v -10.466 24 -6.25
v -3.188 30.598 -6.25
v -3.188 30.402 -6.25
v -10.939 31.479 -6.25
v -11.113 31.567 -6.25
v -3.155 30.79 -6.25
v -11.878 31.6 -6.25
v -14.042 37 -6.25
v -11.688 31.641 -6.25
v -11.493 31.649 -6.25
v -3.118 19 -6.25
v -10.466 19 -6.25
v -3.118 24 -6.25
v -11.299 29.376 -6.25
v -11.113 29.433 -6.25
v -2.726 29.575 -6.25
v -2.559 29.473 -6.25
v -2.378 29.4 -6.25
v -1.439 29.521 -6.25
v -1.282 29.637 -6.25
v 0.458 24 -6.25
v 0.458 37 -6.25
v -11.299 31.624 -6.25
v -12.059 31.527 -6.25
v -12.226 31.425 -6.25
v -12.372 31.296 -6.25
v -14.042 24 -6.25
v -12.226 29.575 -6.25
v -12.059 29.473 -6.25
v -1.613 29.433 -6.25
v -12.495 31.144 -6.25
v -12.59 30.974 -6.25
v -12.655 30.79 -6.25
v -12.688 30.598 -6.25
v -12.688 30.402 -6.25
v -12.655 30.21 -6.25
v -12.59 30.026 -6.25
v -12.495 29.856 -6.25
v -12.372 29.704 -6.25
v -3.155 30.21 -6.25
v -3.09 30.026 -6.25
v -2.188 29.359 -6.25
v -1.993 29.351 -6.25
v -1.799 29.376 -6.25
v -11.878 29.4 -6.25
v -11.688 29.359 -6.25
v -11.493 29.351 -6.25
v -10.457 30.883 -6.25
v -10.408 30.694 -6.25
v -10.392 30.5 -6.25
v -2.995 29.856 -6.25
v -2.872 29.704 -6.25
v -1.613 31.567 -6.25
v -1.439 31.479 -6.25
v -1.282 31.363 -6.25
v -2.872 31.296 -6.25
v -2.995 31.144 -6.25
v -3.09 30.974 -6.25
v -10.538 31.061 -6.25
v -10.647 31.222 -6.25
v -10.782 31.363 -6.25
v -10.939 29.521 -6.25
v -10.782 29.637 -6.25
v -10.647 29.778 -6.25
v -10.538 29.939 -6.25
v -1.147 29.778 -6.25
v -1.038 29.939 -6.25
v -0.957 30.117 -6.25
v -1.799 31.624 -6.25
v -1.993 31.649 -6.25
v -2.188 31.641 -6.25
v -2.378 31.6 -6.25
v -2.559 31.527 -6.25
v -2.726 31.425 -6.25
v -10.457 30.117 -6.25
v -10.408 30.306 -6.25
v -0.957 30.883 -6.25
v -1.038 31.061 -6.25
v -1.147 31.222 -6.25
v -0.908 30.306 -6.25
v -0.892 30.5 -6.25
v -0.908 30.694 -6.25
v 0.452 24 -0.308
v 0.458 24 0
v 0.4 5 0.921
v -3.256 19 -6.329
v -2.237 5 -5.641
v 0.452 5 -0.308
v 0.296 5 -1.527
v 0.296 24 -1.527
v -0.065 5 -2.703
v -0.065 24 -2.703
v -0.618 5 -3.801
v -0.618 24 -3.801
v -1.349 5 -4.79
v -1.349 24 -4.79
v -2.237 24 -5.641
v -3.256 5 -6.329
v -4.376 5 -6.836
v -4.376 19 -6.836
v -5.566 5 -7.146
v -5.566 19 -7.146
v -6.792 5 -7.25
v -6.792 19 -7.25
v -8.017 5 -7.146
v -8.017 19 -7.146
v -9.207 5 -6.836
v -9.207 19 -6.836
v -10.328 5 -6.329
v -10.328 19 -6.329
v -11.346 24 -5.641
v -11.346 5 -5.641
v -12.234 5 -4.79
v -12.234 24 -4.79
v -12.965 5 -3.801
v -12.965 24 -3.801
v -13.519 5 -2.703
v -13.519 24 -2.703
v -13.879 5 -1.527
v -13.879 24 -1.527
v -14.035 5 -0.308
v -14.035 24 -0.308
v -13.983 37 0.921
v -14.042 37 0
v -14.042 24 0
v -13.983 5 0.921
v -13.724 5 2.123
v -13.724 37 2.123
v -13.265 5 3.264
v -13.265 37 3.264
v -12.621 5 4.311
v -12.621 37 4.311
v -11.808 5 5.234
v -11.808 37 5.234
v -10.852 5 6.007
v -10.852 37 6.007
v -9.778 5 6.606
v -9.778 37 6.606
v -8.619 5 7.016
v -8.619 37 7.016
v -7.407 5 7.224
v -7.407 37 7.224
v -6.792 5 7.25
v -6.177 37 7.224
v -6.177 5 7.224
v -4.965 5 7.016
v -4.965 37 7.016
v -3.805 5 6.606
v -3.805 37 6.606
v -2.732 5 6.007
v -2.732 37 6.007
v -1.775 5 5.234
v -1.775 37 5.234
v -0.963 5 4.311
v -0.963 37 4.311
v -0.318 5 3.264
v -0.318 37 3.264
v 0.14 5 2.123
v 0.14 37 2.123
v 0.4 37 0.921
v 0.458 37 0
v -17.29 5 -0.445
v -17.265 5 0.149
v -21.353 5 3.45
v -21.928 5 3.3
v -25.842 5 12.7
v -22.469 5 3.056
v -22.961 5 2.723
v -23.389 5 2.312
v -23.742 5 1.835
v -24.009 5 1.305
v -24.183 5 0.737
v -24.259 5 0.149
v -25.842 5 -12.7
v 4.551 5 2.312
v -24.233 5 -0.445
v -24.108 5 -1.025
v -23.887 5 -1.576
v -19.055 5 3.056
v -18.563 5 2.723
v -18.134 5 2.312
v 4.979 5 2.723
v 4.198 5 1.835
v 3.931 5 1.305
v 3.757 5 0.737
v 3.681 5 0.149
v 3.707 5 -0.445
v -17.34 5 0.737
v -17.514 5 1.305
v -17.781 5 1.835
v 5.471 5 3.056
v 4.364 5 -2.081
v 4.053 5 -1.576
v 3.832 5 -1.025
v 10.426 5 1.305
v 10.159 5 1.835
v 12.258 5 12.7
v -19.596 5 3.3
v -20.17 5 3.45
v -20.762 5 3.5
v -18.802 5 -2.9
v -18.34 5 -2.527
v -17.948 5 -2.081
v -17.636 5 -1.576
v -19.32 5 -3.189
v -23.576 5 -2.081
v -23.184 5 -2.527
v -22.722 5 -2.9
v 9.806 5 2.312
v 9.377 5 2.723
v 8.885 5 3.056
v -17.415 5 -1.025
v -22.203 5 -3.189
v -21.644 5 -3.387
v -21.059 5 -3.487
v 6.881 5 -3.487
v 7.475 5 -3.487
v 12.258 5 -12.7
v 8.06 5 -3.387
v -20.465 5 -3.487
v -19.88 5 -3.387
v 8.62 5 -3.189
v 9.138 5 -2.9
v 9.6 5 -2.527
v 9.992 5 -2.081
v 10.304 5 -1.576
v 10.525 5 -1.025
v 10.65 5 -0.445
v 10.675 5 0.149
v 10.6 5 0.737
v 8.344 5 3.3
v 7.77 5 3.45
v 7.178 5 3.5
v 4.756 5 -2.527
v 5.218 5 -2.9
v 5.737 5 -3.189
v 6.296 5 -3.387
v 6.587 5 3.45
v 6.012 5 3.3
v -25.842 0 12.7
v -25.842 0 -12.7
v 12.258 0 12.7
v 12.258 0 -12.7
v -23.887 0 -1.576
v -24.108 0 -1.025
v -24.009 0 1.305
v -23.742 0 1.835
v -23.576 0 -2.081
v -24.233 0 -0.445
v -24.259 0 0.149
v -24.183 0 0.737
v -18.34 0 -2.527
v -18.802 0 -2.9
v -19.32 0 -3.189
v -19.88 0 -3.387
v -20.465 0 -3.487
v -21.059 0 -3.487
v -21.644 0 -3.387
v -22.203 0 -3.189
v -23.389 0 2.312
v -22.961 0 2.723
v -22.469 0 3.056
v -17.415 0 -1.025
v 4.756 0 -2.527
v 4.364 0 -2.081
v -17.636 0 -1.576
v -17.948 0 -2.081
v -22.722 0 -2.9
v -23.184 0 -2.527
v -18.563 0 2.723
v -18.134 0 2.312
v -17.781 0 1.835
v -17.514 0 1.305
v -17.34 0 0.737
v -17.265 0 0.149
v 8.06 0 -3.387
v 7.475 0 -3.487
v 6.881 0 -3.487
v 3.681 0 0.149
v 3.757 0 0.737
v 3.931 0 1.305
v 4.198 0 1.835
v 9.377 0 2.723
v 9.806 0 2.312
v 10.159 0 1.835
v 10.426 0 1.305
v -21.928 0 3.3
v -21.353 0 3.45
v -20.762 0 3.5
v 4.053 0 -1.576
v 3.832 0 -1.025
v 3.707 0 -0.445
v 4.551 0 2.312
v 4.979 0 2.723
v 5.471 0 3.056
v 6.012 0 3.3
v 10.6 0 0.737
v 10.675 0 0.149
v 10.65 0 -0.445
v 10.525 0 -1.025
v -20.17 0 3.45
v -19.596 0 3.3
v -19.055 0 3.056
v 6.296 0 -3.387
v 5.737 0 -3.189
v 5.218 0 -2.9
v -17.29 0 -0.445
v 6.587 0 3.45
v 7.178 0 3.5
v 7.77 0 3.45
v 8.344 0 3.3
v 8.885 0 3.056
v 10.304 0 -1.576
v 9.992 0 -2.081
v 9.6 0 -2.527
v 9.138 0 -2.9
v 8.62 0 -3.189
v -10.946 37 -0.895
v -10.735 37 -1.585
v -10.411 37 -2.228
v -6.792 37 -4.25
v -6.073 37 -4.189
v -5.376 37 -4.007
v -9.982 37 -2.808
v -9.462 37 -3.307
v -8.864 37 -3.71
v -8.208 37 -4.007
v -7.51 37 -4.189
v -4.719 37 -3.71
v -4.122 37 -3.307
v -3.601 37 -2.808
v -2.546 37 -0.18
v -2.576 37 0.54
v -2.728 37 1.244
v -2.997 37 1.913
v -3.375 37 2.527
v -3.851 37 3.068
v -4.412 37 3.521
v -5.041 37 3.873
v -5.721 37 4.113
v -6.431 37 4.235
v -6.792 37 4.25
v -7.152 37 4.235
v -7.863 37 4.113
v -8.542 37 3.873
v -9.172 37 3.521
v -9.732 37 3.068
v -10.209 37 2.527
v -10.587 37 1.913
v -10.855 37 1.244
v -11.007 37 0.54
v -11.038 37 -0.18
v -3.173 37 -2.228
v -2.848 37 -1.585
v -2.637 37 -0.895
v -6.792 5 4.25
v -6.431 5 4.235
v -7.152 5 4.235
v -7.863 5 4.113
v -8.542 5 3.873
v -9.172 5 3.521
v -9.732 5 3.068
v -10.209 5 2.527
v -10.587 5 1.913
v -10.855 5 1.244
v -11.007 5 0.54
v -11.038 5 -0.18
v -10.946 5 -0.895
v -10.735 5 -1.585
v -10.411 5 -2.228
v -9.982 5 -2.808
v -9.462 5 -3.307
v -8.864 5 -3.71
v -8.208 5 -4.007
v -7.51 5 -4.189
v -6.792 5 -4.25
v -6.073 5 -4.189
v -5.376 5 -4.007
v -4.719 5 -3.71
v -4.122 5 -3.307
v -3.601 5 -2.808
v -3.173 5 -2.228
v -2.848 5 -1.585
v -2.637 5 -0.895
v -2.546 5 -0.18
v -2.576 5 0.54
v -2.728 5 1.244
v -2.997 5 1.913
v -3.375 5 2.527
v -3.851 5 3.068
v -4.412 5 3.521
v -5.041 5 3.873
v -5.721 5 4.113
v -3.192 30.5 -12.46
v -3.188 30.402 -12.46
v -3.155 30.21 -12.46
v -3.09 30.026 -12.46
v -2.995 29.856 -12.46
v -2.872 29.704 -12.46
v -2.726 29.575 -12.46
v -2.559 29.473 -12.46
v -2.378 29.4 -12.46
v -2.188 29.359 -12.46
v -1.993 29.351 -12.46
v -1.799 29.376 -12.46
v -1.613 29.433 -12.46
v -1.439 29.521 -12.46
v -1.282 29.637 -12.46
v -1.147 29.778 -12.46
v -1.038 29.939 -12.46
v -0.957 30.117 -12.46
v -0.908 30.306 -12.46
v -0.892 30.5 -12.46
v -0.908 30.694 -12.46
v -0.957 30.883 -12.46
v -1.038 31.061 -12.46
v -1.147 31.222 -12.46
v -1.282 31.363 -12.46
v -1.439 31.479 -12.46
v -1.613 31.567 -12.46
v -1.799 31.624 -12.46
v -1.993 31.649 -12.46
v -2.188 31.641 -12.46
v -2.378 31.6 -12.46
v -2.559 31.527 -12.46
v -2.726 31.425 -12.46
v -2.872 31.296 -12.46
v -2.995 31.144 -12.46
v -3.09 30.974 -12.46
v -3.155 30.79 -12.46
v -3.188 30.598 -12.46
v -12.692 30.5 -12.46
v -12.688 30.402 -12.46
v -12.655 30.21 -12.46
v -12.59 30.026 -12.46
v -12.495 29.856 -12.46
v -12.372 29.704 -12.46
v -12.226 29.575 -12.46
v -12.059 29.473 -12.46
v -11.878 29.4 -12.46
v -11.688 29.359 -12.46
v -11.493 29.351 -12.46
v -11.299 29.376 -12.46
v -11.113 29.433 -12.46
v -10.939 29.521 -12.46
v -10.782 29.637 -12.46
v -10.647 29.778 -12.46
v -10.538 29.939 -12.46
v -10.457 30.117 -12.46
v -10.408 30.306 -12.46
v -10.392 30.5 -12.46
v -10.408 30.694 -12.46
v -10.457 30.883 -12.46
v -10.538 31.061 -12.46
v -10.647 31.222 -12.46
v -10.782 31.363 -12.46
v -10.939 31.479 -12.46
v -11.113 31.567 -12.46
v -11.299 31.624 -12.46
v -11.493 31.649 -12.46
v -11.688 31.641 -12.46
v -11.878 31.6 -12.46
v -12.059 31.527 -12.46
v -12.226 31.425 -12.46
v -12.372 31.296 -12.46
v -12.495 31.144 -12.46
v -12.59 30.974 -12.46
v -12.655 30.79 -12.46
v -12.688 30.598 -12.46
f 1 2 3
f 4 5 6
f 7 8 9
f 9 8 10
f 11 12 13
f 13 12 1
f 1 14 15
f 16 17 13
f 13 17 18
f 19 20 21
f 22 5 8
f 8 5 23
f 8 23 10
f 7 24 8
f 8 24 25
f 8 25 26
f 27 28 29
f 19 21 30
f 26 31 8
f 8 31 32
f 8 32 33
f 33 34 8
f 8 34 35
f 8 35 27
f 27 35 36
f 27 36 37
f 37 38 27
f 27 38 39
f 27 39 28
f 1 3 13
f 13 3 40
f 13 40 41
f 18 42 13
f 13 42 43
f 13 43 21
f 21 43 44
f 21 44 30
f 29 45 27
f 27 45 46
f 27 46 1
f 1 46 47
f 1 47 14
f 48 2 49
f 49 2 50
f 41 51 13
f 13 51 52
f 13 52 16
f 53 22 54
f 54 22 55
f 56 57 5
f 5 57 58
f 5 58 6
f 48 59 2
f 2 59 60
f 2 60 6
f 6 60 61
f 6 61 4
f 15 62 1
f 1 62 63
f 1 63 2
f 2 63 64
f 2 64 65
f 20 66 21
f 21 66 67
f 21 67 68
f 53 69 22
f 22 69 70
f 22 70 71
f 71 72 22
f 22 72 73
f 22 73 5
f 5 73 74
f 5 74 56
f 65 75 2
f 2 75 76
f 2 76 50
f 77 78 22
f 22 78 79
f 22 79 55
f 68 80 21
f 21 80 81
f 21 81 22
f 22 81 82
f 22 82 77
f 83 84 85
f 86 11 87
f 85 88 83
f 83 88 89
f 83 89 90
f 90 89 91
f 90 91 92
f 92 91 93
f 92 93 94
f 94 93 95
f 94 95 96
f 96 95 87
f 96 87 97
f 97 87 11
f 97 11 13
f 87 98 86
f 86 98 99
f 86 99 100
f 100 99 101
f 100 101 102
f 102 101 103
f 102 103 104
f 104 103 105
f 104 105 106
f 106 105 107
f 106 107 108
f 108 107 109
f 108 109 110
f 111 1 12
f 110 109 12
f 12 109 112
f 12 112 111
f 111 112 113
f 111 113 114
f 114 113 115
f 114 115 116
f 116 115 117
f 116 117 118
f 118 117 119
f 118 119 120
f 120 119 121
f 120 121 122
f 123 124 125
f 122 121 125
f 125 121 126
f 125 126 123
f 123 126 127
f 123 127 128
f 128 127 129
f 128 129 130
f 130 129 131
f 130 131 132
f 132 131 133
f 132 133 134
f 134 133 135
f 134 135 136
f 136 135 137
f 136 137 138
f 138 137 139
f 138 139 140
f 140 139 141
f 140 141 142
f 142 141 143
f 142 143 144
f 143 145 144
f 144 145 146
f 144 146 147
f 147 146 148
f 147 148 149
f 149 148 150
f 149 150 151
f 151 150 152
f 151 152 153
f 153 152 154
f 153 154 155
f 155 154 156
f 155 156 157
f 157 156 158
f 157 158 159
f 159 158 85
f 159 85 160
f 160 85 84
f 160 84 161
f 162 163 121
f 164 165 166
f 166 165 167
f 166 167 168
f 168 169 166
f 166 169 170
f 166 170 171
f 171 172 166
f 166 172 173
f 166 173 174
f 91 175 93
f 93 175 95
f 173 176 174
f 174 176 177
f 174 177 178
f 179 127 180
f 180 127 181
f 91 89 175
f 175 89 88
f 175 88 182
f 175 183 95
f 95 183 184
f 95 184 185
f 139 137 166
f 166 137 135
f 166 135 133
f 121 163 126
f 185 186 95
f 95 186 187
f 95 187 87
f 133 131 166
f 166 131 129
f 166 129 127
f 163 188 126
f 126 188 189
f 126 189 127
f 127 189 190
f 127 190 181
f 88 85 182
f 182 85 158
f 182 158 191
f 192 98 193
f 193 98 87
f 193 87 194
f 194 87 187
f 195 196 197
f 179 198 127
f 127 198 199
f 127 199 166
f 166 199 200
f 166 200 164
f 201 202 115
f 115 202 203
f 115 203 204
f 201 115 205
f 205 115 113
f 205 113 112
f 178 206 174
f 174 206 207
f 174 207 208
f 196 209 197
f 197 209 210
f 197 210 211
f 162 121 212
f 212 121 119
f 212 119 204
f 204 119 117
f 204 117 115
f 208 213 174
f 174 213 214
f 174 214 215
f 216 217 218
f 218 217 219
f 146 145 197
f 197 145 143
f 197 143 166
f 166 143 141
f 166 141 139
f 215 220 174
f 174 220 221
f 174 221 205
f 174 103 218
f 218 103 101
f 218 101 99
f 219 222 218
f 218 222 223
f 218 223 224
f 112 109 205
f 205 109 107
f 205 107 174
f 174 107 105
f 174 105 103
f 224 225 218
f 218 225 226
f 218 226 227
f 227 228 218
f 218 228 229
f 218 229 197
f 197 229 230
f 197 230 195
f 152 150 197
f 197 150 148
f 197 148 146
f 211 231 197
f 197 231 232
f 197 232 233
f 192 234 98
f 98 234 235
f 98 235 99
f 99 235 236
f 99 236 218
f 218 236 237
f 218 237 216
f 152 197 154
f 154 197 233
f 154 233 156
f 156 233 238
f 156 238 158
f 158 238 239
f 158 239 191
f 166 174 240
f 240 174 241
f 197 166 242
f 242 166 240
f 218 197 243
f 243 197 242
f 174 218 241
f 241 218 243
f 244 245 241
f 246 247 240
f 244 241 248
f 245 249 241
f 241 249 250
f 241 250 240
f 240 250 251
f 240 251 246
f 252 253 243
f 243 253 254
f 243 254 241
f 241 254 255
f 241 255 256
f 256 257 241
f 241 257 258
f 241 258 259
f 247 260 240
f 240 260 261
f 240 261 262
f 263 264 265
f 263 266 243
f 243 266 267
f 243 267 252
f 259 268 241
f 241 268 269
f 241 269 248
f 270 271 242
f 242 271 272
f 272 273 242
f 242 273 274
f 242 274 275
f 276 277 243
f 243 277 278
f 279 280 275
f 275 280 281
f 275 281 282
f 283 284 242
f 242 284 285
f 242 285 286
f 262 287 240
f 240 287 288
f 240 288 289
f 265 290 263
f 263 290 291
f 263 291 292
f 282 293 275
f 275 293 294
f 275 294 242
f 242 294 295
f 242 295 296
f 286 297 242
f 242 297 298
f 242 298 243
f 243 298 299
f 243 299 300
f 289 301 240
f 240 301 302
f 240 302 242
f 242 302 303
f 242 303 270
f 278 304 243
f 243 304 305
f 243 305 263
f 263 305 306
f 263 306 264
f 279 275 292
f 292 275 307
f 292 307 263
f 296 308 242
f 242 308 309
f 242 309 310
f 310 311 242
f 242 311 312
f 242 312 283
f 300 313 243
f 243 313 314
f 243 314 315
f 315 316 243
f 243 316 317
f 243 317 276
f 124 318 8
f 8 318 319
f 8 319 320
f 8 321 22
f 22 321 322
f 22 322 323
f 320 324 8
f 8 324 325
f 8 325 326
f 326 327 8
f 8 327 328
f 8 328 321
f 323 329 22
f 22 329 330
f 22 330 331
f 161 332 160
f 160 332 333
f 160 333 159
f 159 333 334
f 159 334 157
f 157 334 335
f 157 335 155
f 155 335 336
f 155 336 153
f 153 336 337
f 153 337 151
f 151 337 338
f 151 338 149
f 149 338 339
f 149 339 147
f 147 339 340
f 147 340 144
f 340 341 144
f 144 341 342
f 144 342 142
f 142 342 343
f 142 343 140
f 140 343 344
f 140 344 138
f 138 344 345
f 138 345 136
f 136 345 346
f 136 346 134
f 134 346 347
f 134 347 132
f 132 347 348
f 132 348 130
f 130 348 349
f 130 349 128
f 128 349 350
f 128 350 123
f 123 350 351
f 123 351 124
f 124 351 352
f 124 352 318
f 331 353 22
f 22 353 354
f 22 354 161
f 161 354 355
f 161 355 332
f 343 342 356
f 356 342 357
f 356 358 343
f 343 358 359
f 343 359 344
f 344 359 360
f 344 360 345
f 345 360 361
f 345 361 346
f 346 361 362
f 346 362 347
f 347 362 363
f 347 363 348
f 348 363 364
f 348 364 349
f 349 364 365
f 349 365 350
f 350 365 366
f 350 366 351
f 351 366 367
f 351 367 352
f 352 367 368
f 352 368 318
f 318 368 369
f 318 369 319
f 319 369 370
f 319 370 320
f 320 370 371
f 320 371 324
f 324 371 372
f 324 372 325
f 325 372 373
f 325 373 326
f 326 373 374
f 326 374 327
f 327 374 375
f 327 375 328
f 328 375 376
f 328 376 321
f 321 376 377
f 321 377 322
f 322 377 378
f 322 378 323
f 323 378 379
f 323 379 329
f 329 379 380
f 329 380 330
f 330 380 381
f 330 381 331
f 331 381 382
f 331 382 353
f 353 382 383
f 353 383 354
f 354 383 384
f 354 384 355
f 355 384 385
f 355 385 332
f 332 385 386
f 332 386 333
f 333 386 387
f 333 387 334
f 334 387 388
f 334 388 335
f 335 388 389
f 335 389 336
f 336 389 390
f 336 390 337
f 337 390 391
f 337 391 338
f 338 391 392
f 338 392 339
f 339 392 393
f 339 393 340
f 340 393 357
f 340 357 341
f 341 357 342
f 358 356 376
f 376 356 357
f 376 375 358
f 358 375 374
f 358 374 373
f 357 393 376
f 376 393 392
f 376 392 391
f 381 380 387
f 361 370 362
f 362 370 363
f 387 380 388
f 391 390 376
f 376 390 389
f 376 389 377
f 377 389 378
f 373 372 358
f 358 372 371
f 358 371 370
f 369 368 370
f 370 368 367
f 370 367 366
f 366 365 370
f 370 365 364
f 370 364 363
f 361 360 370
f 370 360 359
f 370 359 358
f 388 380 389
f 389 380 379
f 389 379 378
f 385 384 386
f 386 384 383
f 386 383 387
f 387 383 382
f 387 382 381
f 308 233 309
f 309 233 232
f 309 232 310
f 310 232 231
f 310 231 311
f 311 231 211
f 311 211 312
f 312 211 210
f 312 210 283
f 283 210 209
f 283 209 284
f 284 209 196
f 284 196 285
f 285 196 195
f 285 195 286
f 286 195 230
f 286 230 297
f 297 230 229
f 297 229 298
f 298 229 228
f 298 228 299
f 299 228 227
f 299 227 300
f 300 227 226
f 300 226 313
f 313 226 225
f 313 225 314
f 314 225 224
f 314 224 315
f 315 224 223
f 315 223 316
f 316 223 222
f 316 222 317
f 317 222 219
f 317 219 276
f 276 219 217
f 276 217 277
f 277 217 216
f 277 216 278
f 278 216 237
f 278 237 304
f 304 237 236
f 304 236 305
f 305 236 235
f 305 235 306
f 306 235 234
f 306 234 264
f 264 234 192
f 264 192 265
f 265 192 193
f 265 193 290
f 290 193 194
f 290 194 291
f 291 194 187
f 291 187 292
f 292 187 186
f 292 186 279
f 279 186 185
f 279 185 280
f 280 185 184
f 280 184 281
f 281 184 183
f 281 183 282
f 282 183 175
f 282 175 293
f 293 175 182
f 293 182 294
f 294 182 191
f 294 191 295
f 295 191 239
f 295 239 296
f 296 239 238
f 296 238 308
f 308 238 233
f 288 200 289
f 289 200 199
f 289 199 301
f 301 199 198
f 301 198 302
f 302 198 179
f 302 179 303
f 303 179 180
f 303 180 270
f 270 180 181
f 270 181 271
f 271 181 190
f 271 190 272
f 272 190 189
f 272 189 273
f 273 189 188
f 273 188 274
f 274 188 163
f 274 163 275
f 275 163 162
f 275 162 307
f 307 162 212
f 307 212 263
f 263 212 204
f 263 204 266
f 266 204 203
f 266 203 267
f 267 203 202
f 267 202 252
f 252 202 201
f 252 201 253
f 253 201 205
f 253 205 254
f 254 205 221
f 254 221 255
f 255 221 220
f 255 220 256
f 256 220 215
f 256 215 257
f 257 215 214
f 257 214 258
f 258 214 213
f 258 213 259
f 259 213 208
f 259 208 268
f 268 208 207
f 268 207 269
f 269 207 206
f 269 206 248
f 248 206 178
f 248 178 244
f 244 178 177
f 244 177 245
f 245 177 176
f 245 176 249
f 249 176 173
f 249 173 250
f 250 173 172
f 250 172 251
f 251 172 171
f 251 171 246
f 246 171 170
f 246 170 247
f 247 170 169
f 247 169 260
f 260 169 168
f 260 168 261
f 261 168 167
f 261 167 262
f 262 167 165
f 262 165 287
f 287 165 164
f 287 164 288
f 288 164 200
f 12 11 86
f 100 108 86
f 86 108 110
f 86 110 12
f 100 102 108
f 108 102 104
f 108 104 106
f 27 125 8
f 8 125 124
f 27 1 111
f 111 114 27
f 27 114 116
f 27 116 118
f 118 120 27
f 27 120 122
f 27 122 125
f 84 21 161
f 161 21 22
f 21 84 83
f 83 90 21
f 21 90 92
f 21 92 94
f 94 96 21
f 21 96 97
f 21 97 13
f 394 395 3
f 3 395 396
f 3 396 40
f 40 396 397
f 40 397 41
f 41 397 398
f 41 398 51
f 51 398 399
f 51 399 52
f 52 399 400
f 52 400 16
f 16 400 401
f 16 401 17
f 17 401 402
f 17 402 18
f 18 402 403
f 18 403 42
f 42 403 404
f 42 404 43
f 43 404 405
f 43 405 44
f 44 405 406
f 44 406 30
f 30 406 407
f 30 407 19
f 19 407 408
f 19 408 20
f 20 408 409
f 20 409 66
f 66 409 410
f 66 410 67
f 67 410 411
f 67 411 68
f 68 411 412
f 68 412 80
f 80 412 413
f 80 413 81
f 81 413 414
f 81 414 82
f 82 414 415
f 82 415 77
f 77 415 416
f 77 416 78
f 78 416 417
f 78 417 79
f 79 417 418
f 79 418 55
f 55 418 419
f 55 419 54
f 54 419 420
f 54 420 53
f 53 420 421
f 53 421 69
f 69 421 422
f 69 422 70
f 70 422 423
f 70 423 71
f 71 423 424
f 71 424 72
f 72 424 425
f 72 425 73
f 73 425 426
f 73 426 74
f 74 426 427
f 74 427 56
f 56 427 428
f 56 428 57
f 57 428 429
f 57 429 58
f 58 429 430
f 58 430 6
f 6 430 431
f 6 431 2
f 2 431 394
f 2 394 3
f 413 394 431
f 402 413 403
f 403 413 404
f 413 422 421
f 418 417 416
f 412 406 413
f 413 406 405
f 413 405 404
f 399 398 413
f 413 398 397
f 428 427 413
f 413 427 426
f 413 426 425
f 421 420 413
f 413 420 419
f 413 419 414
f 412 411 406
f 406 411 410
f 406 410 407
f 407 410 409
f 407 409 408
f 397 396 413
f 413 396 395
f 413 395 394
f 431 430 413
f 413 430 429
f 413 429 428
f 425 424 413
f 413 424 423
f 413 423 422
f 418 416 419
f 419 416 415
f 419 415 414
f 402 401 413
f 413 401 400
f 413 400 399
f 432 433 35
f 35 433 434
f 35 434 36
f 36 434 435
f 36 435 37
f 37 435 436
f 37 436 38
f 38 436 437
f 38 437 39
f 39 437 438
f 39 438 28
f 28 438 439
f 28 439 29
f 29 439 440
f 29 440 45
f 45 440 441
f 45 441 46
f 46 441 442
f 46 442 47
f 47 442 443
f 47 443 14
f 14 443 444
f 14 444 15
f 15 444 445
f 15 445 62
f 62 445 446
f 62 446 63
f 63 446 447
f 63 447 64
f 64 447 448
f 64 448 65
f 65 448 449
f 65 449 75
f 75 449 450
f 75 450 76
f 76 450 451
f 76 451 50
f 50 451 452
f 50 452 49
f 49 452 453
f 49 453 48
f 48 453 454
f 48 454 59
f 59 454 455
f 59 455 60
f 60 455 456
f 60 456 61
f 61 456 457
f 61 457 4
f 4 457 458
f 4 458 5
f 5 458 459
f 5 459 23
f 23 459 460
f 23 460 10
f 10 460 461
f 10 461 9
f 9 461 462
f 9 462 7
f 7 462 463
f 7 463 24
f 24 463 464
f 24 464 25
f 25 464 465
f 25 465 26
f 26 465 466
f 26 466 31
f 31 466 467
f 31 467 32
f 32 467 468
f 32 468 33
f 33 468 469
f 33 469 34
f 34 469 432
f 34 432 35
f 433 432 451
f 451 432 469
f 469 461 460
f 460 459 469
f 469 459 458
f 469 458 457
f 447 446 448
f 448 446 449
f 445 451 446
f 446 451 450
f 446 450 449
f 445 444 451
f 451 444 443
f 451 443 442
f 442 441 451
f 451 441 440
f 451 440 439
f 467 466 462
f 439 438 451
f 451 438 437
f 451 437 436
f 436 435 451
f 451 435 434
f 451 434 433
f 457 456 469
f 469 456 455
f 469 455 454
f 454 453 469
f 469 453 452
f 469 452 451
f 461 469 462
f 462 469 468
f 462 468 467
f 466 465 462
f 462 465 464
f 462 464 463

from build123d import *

# Parameters (mm, degrees)
SKETCH1_W           = 38.1
SKETCH1_H           = 25.4
BOSS_EXTRUDE1_DEPTH = 5
SKETCH3_R           = 7.25
SKETCH3_R_2         = 4.25
BOSS_EXTRUDE2_DEPTH = 32
SKETCH4_R           = 3.5
CUT_EXTRUDE1_DEPTH  = 44.047479384
CUT_EXTRUDE2_START  = -18
CUT_EXTRUDE2_DEPTH  = 18
BOSS_EXTRUDE3_START = -13
BOSS_EXTRUDE3_DEPTH = 13
SKETCH9_R           = 1.15
BOSS_EXTRUDE4_DEPTH = 6.21


with BuildPart() as part:
    # Sketch1 → Boss-Extrude1 (new body)
    with BuildSketch(Plane(origin=(0, 0, 0), x_dir=(1, 0, 0), z_dir=(0, 1, 0))):
        with Locations((-6.79173913, 0)):
            Rectangle(SKETCH1_W, SKETCH1_H)
    extrude(amount=BOSS_EXTRUDE1_DEPTH)

    # Sketch3 → Boss-Extrude2 (add)
    with BuildSketch(Plane(origin=(0, 5, 0), x_dir=(1, 0, 0), z_dir=(0, 1, 0))):
        with Locations((-6.79173913, 0)):
            Circle(SKETCH3_R)
        with Locations((-6.79173913, 0)):
            Circle(SKETCH3_R_2, mode=Mode.SUBTRACT)
    extrude(amount=BOSS_EXTRUDE2_DEPTH)

    # Sketch4 → Cut-Extrude1 (cut, through all)
    with BuildSketch(Plane(origin=(0, 5, 0), x_dir=(1, 0, 0), z_dir=(0, 1, 0))):
        with Locations((7.17826087, 0)):
            Circle(SKETCH4_R)
        with Locations((-20.76173913, 0)):
            Circle(SKETCH4_R)
    extrude(amount=-CUT_EXTRUDE1_DEPTH, mode=Mode.SUBTRACT)

    # Sketch6 → Cut-Extrude2 (cut)
    with BuildSketch(Plane(origin=(0, 37, 0), x_dir=(1, 0, 0), z_dir=(0, 1, 0)).offset(CUT_EXTRUDE2_START)):
        with BuildLine():
            Line((-3.117504516, 6.25), (-10.465973745, 6.25))
            ThreePointArc((-10.465973745, 6.25), (-6.79173913, 7.25), (-3.117504516, 6.25))
        make_face()
    extrude(amount=CUT_EXTRUDE2_DEPTH, mode=Mode.SUBTRACT)

    # Sketch8 → Boss-Extrude3 (add)
    with BuildSketch(Plane(origin=(0, 37, 0), x_dir=(1, 0, 0), z_dir=(0, 1, 0)).offset(BOSS_EXTRUDE3_START)):
        with BuildLine():
            Line((-14.04173913, 6.25), (-10.465973745, 6.25))
            ThreePointArc((-10.465973745, 6.25), (-13.084620067, 3.600298533), (-14.04173913, 0))
            Line((-14.04173913, 0), (-14.04173913, 6.25))
        make_face()
        with BuildLine():
            Line((0.45826087, 0), (0.45826087, 6.25))
            Line((0.45826087, 6.25), (-3.117504516, 6.25))
            ThreePointArc((-3.117504516, 6.25), (-0.498858194, 3.600298533), (0.45826087, 0))
        make_face()
    extrude(amount=BOSS_EXTRUDE3_DEPTH)

    # Sketch9 → Boss-Extrude4 (add)
    with BuildSketch(Plane(origin=(0, 0, -6.25), x_dir=(-1, 0, 0), z_dir=(0, 0, -1))):
        with Locations((2.04173913, 30.5)):
            Circle(SKETCH9_R)
        with Locations((11.54173913, 30.5)):
            Circle(SKETCH9_R)
    extrude(amount=BOSS_EXTRUDE4_DEPTH)


solid = part.part
